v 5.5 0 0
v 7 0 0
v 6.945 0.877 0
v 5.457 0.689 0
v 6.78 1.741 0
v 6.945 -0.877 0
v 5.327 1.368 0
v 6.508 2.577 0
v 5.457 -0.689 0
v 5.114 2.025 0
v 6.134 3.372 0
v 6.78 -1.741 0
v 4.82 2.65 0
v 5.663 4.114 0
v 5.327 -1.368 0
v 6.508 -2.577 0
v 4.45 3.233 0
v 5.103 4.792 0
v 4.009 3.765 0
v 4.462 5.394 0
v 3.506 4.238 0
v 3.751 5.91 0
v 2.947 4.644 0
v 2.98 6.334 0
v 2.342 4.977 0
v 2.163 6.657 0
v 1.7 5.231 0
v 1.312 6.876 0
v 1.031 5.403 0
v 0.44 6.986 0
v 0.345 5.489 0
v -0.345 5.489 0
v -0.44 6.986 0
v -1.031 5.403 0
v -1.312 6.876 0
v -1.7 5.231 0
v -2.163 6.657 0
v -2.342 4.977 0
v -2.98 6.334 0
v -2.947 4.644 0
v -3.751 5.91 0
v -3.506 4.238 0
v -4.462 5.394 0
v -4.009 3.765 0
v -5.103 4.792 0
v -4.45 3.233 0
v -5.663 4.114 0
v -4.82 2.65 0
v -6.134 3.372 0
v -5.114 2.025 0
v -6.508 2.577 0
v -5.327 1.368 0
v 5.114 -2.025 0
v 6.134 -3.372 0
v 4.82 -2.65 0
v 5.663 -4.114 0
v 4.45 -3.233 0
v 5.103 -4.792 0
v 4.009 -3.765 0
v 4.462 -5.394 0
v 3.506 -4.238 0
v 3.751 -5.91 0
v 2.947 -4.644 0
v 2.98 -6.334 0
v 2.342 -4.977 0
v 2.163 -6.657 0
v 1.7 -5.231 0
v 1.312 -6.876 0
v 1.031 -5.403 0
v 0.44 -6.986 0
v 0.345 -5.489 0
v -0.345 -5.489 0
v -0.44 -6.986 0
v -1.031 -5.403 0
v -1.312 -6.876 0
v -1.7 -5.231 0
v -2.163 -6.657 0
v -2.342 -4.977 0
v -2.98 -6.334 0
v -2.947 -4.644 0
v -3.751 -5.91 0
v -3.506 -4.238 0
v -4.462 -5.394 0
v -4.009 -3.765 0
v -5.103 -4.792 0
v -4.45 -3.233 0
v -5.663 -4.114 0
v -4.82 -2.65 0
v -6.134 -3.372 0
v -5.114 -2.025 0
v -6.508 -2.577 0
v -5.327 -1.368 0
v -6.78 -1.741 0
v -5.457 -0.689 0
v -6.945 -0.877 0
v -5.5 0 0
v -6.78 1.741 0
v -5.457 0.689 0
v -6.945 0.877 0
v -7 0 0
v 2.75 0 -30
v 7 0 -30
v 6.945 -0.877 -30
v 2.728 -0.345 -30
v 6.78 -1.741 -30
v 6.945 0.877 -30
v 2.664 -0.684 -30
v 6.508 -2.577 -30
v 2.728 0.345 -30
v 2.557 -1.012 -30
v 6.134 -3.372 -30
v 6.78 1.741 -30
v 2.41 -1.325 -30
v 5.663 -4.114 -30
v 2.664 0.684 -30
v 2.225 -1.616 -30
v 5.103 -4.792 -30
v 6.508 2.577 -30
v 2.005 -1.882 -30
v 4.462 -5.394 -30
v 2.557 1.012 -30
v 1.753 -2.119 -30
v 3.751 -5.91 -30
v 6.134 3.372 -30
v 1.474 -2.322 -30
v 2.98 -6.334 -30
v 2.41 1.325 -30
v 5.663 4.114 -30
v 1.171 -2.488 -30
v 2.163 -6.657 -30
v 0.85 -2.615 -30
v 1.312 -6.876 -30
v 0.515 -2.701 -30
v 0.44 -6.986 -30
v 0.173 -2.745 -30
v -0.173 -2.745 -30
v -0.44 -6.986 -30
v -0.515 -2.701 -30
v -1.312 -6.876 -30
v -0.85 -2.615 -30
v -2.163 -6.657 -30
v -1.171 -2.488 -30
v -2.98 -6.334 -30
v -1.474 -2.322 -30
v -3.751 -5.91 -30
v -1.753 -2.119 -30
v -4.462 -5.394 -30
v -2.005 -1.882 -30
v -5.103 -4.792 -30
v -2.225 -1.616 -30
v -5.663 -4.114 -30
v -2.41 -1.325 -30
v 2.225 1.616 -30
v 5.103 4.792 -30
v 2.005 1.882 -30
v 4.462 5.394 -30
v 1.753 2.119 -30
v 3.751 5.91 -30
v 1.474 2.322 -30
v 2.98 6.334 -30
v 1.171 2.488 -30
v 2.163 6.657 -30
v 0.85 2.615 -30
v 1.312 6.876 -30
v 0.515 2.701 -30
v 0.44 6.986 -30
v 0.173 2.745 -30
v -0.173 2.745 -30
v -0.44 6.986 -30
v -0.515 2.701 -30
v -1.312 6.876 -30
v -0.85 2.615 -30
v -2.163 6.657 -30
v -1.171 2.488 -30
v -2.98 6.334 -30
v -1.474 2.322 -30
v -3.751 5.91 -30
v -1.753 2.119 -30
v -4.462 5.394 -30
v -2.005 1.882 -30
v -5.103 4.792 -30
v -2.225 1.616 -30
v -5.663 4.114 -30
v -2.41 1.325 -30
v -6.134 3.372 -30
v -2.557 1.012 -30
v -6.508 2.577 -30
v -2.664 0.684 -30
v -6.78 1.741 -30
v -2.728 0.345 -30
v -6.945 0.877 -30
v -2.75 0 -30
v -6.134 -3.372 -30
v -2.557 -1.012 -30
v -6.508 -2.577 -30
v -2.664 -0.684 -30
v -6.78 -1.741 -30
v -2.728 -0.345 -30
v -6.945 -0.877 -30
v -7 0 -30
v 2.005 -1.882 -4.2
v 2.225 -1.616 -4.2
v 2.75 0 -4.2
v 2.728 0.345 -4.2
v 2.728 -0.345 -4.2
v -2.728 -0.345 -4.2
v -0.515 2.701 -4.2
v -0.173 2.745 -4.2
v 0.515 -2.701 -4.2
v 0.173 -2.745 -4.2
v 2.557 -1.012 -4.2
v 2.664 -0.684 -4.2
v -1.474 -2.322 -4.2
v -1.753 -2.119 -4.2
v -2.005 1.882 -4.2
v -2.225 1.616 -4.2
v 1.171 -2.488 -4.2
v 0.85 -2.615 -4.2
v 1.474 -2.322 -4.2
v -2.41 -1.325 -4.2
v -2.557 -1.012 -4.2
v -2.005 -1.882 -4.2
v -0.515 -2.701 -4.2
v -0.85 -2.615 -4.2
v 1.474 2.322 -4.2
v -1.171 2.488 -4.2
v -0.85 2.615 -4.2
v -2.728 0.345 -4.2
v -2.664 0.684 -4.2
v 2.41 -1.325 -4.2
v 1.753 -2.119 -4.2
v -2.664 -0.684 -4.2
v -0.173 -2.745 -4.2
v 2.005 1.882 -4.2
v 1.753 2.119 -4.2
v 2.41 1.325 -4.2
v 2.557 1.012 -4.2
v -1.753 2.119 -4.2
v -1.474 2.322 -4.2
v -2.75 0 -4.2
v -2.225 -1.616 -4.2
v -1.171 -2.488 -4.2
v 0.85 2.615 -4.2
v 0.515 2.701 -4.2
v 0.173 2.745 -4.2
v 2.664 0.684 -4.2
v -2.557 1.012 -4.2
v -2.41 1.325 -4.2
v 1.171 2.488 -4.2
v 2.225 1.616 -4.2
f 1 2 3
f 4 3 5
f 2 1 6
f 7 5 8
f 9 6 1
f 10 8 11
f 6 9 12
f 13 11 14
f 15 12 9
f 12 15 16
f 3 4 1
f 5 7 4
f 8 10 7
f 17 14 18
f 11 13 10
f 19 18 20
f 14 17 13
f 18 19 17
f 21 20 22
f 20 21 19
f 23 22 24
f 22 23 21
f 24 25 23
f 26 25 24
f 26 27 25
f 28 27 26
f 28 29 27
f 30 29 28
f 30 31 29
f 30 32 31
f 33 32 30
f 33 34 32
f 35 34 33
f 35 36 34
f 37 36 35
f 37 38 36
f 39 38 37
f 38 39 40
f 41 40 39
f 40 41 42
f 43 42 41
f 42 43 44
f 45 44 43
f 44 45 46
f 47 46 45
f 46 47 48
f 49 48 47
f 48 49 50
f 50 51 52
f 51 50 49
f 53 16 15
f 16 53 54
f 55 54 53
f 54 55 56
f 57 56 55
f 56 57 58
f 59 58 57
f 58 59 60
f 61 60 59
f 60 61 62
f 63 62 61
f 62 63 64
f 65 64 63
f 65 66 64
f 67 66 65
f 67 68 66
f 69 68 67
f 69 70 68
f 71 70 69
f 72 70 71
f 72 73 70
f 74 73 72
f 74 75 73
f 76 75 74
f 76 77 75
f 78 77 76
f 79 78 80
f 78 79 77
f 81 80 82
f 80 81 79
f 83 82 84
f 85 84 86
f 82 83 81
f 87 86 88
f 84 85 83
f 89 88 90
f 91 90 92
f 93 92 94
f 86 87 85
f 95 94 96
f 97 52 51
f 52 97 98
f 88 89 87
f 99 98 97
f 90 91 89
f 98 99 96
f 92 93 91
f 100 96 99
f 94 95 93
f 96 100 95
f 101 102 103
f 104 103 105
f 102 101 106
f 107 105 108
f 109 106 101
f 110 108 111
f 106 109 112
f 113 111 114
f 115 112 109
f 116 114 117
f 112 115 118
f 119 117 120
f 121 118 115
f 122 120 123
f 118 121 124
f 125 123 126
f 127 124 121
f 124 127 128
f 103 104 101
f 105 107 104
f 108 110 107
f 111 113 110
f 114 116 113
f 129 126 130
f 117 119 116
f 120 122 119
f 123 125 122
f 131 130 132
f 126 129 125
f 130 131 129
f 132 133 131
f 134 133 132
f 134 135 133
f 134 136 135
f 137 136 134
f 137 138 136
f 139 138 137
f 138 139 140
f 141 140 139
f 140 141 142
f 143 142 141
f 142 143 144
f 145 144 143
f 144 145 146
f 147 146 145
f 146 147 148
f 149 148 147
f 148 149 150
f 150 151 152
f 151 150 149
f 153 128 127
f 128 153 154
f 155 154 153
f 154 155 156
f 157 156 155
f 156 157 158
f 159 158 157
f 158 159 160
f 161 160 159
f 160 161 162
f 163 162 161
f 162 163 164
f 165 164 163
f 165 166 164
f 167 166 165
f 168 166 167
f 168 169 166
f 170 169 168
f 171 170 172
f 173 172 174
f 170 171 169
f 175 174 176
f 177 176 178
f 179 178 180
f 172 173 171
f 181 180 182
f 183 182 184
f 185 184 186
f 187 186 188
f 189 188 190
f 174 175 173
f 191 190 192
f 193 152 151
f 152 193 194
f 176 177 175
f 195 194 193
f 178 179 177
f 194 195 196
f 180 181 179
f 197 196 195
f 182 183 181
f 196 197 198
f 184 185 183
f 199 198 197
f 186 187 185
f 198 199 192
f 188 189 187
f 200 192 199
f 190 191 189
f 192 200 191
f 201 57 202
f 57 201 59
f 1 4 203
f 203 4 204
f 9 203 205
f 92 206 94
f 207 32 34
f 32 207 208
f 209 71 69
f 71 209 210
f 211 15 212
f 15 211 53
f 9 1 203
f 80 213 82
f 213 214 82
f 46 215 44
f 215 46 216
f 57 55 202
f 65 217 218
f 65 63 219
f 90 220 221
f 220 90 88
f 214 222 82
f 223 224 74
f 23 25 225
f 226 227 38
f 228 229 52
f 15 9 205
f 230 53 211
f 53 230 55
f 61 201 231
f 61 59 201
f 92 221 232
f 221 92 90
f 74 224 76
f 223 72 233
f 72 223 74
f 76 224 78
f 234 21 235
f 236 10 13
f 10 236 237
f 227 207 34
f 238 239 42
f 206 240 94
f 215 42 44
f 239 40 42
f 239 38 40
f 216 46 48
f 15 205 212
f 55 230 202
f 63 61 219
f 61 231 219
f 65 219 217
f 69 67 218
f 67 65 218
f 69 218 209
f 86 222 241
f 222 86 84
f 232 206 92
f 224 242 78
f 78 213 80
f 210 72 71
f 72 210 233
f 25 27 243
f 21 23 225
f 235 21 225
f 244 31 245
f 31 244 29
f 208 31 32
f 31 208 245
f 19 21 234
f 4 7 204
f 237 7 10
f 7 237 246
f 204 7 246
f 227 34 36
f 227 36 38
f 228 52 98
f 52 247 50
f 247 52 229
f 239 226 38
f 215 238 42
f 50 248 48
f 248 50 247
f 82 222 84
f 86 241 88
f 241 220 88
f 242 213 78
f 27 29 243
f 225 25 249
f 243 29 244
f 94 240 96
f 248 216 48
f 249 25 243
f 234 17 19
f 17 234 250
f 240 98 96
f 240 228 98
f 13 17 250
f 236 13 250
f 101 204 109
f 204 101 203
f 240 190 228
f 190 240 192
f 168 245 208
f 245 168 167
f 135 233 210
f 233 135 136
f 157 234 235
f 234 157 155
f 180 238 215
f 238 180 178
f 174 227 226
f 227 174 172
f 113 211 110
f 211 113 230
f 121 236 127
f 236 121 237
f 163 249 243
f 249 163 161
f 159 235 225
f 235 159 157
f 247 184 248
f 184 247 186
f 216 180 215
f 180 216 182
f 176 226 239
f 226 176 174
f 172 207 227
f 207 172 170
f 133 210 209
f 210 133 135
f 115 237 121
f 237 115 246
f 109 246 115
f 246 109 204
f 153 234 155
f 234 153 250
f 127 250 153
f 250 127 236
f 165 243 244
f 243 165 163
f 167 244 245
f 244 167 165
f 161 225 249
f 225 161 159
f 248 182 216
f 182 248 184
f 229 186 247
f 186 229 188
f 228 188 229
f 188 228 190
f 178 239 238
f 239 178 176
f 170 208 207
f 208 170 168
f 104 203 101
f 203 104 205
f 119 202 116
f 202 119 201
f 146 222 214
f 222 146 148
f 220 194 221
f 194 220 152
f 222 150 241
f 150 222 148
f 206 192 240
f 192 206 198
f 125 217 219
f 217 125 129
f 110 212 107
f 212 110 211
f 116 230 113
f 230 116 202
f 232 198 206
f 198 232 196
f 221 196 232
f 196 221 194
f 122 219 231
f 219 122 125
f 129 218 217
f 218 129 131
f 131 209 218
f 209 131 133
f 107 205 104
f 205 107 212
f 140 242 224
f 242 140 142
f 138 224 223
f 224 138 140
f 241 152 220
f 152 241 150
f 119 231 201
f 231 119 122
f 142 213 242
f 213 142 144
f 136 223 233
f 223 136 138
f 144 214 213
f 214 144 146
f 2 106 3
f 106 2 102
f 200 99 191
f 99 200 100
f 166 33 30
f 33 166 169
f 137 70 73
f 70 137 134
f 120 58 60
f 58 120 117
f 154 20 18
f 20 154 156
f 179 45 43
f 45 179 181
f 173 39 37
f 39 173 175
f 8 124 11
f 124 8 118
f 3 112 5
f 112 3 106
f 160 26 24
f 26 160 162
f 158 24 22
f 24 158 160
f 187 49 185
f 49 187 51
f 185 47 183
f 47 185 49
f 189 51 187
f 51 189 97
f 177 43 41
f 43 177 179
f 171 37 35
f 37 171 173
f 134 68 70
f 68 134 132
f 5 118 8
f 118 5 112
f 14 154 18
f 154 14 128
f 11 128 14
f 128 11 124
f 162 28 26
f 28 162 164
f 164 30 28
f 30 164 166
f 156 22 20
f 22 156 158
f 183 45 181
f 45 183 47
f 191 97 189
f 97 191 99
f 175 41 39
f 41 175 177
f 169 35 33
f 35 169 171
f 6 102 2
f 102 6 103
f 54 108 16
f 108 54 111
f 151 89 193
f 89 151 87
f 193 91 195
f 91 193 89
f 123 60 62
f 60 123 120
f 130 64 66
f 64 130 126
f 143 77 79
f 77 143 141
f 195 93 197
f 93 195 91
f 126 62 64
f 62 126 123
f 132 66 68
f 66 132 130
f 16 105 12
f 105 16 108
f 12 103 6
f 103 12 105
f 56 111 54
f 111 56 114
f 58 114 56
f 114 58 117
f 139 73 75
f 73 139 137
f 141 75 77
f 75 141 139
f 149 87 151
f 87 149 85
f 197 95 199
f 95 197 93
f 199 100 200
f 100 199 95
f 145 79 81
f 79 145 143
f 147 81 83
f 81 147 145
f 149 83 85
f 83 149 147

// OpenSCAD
$fn = 50;


difference() {
	union() {
		translate(v = [0, 0, -30.0000000000]) {
			cylinder(h = 30, r = 7.0000000000);
		}
		cylinder(h = 0, r = 13.0000000000);
	}
	union() {
		translate(v = [0, 0, 0]) {
			rotate(a = [0, 0, 0]) {
				difference() {
					union() {
						#translate(v = [0, 0, -30.0000000000]) {
							cylinder(h = 30, r = 2.2500000000);
						}
						#translate(v = [0, 0, -4.2000000000]) {
							cylinder(h = 4.2000000000, r = 7.0000000000, r1 = 2.7500000000, r2 = 5.5000000000);
						}
						#translate(v = [0, 0, -30.0000000000]) {
							cylinder(h = 30, r = 2.7500000000);
						}
						#translate(v = [0, 0, -30.0000000000]) {
							cylinder(h = 30, r = 2.2500000000);
						}
					}
					union();
				}
			}
		}
	}
}
